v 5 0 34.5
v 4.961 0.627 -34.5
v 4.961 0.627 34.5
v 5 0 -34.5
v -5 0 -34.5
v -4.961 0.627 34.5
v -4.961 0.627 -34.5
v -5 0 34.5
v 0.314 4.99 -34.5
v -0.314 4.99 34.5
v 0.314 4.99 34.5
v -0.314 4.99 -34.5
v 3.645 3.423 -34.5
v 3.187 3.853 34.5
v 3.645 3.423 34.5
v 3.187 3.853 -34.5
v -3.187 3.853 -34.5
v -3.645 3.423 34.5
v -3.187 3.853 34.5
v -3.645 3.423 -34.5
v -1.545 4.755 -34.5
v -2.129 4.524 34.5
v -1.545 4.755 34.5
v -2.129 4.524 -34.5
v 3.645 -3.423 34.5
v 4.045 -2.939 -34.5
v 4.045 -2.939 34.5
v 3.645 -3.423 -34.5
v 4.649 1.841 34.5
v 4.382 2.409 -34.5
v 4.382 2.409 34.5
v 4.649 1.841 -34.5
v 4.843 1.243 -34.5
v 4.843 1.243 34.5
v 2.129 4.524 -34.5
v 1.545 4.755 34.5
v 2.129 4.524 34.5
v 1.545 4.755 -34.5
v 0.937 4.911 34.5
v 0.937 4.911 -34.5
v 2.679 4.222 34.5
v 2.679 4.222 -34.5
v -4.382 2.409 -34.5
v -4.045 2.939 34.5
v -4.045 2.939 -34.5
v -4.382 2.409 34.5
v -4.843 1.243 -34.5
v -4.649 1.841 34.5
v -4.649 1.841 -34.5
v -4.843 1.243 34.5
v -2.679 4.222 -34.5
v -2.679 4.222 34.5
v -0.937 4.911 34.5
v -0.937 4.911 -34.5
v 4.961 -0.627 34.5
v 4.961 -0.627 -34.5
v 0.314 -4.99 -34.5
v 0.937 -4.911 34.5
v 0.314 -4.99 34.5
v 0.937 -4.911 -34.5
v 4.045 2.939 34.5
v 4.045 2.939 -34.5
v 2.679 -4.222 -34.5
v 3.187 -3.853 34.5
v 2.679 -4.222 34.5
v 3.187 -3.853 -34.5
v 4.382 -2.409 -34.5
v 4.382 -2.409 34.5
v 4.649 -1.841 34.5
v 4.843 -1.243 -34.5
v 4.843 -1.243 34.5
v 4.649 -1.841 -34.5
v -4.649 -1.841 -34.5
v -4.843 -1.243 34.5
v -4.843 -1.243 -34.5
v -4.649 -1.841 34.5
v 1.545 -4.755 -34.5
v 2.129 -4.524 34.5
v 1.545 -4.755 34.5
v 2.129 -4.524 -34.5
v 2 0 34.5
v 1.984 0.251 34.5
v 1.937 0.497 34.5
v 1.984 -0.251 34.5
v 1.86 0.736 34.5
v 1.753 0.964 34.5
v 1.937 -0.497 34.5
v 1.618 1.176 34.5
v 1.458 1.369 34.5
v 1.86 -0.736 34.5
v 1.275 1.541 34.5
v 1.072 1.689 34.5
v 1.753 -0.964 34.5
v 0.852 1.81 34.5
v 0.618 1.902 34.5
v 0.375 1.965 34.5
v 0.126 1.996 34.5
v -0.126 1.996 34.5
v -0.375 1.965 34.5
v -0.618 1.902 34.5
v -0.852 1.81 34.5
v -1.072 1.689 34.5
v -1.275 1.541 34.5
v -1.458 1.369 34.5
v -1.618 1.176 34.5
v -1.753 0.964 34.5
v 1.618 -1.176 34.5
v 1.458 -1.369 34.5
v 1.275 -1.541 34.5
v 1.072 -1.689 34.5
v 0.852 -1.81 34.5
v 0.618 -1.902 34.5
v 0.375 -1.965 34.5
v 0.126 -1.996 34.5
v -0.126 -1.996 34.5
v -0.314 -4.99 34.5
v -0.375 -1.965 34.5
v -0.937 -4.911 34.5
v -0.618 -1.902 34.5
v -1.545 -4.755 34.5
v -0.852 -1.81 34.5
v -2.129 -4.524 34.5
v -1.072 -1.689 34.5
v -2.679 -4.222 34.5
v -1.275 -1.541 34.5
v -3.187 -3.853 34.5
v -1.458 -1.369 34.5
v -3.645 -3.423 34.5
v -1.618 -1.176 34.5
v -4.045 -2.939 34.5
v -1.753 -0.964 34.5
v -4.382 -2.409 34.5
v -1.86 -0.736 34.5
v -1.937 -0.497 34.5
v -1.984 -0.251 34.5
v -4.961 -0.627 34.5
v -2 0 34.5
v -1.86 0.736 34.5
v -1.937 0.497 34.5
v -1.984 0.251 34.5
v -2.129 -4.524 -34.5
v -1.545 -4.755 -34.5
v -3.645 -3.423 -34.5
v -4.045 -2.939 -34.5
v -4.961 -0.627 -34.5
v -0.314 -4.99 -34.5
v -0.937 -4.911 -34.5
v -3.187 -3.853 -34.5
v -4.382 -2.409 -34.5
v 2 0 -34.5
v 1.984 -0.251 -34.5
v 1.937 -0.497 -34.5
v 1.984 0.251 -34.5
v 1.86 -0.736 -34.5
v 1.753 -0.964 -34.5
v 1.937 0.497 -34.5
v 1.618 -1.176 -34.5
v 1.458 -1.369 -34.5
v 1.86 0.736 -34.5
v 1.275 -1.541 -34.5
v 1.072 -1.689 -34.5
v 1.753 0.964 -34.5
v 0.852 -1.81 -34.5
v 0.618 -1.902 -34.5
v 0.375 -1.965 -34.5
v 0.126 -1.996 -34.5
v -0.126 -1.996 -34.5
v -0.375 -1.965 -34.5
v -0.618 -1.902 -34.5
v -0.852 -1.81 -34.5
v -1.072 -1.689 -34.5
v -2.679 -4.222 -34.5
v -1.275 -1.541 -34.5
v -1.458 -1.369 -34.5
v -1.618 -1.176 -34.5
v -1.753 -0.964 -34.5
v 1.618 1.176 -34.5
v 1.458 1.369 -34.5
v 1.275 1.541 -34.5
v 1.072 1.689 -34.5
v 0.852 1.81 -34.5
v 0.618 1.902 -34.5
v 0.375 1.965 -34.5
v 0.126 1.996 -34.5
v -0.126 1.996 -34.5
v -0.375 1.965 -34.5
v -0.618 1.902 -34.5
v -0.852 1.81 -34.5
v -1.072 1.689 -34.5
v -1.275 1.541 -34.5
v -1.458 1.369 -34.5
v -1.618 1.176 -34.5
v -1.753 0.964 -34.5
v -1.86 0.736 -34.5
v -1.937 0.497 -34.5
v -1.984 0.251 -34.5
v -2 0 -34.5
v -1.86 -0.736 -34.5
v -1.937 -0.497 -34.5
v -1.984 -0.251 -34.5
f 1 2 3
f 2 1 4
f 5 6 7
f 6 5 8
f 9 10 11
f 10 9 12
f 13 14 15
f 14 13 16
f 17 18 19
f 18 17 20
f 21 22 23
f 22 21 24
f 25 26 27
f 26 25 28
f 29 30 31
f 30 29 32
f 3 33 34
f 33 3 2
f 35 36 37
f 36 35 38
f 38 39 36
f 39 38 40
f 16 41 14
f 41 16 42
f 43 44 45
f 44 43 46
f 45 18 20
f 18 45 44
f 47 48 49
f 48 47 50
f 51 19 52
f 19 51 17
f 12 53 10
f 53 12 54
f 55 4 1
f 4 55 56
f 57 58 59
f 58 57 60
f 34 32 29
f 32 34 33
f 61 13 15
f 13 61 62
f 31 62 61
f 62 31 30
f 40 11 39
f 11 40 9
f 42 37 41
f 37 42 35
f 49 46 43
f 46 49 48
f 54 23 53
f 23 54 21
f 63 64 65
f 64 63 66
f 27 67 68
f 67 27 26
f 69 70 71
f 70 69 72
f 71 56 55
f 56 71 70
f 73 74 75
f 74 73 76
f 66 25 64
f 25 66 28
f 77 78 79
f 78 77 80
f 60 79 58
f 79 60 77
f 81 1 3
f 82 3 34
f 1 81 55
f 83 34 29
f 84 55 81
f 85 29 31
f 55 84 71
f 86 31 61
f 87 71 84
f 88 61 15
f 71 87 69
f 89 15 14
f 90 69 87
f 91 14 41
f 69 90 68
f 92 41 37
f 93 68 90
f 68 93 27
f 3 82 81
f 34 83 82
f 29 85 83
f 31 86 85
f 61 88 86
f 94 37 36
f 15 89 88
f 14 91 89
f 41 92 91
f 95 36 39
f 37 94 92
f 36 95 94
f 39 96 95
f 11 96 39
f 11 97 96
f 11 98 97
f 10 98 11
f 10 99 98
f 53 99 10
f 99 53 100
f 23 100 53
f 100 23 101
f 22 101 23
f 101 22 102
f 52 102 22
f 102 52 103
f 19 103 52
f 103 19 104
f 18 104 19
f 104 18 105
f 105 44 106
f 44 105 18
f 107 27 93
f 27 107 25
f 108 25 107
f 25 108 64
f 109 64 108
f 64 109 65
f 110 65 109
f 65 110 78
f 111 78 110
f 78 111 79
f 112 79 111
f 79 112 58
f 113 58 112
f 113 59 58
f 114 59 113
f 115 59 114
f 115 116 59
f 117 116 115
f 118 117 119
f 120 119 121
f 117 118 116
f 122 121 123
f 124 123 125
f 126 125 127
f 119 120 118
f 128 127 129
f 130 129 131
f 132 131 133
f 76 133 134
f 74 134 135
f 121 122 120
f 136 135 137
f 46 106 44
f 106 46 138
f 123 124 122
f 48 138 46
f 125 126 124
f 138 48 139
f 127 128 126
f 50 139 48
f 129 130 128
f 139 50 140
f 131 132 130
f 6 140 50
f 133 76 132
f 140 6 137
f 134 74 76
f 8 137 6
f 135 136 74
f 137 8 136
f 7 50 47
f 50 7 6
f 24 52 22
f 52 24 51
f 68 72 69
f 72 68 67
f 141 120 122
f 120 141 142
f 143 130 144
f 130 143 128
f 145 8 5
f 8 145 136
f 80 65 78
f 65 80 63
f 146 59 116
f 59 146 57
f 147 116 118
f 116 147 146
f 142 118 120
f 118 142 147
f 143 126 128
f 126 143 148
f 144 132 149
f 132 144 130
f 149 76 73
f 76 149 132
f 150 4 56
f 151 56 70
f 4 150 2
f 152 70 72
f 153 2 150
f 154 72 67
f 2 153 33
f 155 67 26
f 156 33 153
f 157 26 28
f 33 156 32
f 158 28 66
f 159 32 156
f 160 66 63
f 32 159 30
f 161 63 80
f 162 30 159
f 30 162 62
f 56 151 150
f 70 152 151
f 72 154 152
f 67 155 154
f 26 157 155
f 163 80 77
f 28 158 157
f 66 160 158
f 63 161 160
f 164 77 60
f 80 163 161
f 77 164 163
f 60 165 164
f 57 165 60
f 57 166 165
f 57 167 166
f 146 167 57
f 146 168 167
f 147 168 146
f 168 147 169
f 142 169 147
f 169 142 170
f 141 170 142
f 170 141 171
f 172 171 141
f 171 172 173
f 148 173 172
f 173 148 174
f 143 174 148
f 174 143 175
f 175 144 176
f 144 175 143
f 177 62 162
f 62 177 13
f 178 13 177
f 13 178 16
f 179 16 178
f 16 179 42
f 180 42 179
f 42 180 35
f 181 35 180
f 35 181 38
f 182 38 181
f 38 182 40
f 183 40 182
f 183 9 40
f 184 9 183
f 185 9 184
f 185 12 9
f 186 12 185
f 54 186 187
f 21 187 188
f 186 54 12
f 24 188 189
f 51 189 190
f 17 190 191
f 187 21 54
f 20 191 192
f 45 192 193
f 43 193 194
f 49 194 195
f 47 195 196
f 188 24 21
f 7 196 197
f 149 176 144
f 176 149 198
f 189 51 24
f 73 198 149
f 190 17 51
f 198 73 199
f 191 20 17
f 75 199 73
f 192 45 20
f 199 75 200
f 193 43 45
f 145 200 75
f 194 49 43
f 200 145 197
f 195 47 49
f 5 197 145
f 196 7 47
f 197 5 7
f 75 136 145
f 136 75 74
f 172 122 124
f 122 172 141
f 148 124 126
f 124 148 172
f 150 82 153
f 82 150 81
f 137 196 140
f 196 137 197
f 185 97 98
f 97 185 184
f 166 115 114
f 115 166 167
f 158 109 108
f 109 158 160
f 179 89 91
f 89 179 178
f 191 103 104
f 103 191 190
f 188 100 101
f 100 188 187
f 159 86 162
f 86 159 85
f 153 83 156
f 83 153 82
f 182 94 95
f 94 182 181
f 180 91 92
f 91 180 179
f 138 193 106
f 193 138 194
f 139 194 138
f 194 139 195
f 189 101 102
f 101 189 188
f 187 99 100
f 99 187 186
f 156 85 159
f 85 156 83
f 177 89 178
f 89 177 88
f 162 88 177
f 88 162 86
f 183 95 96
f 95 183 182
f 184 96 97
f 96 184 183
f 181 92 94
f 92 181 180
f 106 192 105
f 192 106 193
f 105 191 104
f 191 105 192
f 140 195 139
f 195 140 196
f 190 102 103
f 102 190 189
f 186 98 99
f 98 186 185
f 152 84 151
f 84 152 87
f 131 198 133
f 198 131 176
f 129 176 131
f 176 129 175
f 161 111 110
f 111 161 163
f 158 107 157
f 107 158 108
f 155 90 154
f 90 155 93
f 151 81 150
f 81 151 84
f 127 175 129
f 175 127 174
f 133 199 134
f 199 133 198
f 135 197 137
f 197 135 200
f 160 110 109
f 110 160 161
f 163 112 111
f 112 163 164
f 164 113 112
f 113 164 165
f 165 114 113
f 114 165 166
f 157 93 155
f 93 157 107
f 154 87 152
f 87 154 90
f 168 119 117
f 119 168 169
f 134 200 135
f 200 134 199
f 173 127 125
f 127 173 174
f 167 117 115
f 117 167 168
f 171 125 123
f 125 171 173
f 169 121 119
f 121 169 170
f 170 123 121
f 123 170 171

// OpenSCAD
$fn = 50;


difference() {
	union() {
		translate(v = [0, 0, -34.5000000000]) {
			cylinder(h = 69, r = 5.0000000000);
		}
	}
	union() {
		translate(v = [0, 0, -100.0000000000]) {
			cylinder(h = 200, r = 2.0000000000);
		}
	}
}
